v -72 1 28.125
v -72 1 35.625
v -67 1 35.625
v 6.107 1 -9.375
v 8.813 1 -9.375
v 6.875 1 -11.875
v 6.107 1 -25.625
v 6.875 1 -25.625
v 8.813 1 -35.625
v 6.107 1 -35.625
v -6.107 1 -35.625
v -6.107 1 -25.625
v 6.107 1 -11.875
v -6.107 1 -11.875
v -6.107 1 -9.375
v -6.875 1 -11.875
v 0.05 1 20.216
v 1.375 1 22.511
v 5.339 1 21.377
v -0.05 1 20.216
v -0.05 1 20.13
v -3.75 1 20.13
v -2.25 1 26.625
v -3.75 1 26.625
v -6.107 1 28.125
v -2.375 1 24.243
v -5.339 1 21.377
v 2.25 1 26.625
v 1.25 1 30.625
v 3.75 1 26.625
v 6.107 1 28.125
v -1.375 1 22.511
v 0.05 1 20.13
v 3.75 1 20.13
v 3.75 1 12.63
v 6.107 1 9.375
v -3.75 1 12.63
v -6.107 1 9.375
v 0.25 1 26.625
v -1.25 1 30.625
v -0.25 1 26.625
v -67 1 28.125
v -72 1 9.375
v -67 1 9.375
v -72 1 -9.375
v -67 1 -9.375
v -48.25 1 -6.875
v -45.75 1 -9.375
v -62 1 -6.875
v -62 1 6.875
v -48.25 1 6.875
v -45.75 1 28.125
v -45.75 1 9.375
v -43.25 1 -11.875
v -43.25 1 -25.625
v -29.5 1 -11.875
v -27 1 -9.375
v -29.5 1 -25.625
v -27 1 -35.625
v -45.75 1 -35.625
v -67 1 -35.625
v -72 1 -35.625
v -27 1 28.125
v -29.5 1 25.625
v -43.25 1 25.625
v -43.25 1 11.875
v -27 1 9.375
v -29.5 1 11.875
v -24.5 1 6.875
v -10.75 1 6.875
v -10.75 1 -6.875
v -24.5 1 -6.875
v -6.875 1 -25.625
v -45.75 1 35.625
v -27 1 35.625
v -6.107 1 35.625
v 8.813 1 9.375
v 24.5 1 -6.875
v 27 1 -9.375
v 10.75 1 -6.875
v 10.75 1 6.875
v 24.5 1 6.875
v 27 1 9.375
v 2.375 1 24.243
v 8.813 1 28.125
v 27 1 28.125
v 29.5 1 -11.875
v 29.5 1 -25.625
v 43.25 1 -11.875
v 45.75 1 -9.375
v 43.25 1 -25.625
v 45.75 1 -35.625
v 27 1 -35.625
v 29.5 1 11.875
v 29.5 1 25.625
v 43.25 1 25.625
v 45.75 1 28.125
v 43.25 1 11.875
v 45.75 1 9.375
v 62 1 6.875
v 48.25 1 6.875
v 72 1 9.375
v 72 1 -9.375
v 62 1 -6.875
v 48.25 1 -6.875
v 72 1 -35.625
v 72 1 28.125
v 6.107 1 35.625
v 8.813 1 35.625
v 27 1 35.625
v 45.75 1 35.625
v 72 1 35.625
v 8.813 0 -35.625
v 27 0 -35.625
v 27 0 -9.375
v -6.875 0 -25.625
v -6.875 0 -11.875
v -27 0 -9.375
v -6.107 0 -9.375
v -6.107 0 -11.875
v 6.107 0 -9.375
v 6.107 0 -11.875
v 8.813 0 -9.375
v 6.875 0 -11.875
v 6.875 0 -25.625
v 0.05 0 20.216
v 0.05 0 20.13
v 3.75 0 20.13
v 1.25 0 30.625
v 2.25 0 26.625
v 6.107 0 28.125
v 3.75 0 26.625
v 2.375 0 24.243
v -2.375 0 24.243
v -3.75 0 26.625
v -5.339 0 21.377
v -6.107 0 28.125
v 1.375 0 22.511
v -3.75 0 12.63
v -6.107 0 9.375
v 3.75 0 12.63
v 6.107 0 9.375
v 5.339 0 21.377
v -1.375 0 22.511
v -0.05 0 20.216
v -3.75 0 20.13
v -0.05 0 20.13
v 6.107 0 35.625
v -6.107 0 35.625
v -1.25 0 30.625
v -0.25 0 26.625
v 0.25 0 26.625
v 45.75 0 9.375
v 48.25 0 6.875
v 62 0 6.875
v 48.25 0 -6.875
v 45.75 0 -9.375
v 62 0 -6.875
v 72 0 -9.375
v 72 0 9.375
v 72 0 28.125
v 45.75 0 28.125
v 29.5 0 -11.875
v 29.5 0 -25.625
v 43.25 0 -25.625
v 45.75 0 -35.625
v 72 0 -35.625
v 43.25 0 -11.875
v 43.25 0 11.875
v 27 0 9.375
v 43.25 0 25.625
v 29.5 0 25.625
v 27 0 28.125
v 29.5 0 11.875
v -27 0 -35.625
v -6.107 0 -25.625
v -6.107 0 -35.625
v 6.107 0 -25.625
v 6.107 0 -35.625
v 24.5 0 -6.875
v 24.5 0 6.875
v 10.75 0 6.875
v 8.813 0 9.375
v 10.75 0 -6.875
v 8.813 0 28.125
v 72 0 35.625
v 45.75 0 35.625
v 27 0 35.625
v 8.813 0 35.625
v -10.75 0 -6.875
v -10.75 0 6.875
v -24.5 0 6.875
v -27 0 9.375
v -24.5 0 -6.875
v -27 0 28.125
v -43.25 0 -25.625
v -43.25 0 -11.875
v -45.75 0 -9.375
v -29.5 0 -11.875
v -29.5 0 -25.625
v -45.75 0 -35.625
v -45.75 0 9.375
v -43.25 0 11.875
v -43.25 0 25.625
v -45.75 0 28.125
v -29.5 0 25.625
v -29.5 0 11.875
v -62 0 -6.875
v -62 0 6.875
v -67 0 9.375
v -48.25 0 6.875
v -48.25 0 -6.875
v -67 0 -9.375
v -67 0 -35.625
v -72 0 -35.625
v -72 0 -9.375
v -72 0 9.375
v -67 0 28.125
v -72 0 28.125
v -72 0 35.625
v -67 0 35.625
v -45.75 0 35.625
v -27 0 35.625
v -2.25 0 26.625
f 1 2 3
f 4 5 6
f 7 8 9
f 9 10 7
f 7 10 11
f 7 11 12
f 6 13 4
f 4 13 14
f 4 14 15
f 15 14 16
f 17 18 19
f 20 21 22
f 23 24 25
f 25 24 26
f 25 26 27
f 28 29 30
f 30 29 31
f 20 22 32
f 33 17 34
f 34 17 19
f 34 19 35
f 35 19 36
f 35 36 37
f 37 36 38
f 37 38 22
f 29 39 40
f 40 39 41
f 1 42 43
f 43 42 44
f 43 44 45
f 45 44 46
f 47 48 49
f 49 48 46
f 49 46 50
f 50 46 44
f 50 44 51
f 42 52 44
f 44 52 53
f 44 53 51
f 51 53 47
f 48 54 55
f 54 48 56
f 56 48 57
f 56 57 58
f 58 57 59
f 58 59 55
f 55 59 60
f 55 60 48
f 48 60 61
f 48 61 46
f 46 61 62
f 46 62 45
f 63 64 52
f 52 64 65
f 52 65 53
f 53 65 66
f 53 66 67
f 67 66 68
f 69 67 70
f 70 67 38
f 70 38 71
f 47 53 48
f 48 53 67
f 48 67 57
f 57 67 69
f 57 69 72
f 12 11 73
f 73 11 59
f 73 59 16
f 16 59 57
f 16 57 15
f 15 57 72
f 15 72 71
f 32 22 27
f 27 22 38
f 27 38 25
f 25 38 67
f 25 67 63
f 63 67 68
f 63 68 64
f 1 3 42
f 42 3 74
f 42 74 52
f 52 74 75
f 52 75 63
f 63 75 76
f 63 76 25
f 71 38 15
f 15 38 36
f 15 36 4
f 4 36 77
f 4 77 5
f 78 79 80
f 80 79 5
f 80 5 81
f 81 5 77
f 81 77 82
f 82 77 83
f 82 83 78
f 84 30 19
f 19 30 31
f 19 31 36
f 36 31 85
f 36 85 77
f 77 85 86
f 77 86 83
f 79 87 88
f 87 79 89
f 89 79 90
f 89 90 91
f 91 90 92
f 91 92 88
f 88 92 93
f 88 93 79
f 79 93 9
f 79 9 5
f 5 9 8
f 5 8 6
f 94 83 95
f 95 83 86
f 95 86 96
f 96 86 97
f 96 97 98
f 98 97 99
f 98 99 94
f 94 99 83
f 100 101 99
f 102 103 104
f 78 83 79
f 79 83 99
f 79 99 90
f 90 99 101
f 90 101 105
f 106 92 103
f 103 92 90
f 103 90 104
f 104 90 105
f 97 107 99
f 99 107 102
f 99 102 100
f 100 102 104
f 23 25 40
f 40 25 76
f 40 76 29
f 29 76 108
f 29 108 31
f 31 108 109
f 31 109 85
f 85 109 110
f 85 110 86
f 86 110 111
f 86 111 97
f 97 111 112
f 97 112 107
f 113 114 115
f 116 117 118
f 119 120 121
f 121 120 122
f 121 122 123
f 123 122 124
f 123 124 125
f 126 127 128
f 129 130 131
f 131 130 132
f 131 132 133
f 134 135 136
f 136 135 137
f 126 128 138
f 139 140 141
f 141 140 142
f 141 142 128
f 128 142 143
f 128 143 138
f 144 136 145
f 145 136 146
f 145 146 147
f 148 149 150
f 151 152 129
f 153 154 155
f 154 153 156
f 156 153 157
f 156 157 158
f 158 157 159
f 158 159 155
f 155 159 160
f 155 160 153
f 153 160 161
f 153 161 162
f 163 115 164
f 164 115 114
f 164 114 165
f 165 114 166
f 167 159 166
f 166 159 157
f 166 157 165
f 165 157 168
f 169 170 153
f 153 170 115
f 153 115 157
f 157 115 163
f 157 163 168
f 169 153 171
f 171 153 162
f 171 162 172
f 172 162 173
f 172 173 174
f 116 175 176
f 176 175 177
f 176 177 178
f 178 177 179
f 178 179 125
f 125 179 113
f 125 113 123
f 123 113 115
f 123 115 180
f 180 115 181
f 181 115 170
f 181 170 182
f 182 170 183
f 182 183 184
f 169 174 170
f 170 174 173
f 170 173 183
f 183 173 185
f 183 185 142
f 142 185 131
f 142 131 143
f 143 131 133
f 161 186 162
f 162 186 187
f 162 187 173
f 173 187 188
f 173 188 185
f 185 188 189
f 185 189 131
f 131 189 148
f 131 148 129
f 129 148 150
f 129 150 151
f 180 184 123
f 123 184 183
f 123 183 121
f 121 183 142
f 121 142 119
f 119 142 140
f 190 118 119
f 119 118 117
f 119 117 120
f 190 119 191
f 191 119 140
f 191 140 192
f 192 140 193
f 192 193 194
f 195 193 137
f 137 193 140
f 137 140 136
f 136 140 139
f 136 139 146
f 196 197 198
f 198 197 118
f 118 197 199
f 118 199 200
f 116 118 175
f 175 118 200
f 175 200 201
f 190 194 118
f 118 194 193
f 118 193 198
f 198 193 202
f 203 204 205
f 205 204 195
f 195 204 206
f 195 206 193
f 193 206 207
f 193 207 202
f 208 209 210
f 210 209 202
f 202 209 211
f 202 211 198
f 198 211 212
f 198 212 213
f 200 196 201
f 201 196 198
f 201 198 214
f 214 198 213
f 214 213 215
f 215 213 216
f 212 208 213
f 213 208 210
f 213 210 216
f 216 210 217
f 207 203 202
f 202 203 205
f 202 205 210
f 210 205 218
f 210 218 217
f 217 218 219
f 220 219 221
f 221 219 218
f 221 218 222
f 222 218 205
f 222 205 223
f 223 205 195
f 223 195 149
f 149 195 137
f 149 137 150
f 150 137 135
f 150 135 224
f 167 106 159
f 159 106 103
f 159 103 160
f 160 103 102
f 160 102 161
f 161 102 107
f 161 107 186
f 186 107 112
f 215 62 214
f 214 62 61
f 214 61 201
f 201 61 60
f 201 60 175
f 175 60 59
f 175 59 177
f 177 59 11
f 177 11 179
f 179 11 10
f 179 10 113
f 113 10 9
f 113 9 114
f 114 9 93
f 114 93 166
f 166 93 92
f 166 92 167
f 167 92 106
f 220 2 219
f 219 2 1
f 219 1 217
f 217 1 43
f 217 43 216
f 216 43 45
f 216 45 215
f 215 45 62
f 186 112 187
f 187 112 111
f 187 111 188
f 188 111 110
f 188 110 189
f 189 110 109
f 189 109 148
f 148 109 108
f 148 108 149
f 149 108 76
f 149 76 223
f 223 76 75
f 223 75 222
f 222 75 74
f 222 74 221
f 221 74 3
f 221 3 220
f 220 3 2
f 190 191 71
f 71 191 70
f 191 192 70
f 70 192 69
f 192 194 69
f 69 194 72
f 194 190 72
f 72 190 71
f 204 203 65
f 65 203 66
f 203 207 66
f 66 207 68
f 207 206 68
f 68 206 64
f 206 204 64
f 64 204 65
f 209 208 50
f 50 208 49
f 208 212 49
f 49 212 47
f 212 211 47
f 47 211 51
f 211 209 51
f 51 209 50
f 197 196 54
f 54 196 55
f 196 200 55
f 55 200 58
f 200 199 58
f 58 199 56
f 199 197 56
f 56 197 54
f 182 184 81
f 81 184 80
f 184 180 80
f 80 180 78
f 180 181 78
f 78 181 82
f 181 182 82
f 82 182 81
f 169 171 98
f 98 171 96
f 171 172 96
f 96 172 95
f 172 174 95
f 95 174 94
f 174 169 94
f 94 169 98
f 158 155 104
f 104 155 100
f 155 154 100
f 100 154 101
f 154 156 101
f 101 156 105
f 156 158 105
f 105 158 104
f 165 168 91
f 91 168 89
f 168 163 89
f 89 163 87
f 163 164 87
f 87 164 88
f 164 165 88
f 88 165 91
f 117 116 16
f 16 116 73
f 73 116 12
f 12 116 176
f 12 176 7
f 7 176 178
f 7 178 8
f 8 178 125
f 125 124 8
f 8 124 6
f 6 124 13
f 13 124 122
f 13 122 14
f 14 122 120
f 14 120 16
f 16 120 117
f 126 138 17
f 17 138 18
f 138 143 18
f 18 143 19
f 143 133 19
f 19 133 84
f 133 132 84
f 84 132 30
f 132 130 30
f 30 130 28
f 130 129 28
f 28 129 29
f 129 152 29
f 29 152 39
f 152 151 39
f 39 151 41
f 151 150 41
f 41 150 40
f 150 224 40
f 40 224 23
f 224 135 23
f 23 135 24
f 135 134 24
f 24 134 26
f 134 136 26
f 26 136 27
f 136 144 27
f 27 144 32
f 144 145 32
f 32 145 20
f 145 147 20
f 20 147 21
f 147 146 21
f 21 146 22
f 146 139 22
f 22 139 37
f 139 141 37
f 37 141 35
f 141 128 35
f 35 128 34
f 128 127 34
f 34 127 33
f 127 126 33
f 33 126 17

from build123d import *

# Parameters (mm, degrees)
SKETCH1_W           = 144
SKETCH1_H           = 71.25
BOSS_EXTRUDE1_DEPTH = 1
SKETCH2_W           = 13.75
SKETCH2_H           = 13.75
CUT_EXTRUDE1_DEPTH  = 81.33766629
SKETCH3_W           = 13.75
SKETCH3_H           = 13.75
CUT_EXTRUDE2_DEPTH  = 81.33766629
SKETCH4_W           = 7.5
SKETCH4_H           = 7.5
CUT_EXTRUDE6_DEPTH  = 81.33766629


with BuildPart() as part:
    # Sketch1 → Boss-Extrude1 (new body)
    with BuildSketch(Plane(origin=(0, 0, 0), x_dir=(1, 0, 0), z_dir=(0, 1, 0))):
        Rectangle(SKETCH1_W, SKETCH1_H)
    extrude(amount=BOSS_EXTRUDE1_DEPTH)

    # Sketch2 → Cut-Extrude1 (cut, through all)
    with BuildSketch(Plane(origin=(0, 1, 0), x_dir=(1, 0, 0), z_dir=(0, 1, 0))):
        with Locations((-36.375, 18.75)):
            Rectangle(SKETCH2_W, SKETCH2_H)
        with Locations((-55.125, 0)):
            Rectangle(SKETCH2_W, SKETCH2_H)
        with Locations((-36.375, -18.75)):
            Rectangle(SKETCH2_W, SKETCH2_H)
        with Locations((-17.625, 0)):
            Rectangle(SKETCH2_W, SKETCH2_H)
    cut_extrude1 = extrude(amount=-CUT_EXTRUDE1_DEPTH, mode=Mode.SUBTRACT)

    # Mirror1: Cut-Extrude1 across plane
    add(cut_extrude1.mirror(Plane(origin=(0, 0, 0), x_dir=(0, 0, 1), z_dir=(1, 0, 0))), mode=Mode.SUBTRACT)

    # Sketch3 → Cut-Extrude2 (cut, through all)
    with BuildSketch(Plane(origin=(0, 1, 0), x_dir=(1, 0, 0), z_dir=(0, 1, 0))):
        with Locations((0, 18.75)):
            Rectangle(SKETCH3_W, SKETCH3_H)
    extrude(amount=-CUT_EXTRUDE2_DEPTH, mode=Mode.SUBTRACT)

    # Sketch4 → Cut-Extrude6 (cut, through all)
    with BuildSketch(Plane(origin=(0, 1, 0), x_dir=(1, 0, 0), z_dir=(0, 1, 0))):
        with Locations((0, -16.379809472)):
            Rectangle(SKETCH4_W, SKETCH4_H)
        Polygon((0.05, -20.216412012), (-0.05, -20.216412012), (-1.375, -22.511379332), (-2.375, -24.24343014), (-3.75, -26.625), (-2.25, -26.625), (-0.25, -26.625), (0.25, -26.625), (2.25, -26.625), (3.75, -26.625), (2.375, -24.24343014), (1.375, -22.511379332), align=None)
        Polygon((5.339101615, -21.377404736), (1.375, -22.511379332), (2.375, -24.24343014), align=None)
        Polygon((-2.375, -24.24343014), (-1.375, -22.511379332), (-5.339101615, -21.377404736), align=None)
        Polygon((-0.25, -26.625), (-2.25, -26.625), (-1.25, -30.625), align=None)
        Polygon((1.25, -30.625), (2.25, -26.625), (0.25, -26.625), align=None)
        Polygon((-0.05, -20.216412012), (0, -20.129809472), (-0.05, -20.129809472), align=None)
        Polygon((0.05, -20.129809472), (0, -20.129809472), (0.05, -20.216412012), align=None)
        Polygon((0.05, -20.216412012), (0, -20.129809472), (-0.05, -20.216412012), align=None)
    extrude(amount=-CUT_EXTRUDE6_DEPTH, mode=Mode.SUBTRACT)


solid = part.part
